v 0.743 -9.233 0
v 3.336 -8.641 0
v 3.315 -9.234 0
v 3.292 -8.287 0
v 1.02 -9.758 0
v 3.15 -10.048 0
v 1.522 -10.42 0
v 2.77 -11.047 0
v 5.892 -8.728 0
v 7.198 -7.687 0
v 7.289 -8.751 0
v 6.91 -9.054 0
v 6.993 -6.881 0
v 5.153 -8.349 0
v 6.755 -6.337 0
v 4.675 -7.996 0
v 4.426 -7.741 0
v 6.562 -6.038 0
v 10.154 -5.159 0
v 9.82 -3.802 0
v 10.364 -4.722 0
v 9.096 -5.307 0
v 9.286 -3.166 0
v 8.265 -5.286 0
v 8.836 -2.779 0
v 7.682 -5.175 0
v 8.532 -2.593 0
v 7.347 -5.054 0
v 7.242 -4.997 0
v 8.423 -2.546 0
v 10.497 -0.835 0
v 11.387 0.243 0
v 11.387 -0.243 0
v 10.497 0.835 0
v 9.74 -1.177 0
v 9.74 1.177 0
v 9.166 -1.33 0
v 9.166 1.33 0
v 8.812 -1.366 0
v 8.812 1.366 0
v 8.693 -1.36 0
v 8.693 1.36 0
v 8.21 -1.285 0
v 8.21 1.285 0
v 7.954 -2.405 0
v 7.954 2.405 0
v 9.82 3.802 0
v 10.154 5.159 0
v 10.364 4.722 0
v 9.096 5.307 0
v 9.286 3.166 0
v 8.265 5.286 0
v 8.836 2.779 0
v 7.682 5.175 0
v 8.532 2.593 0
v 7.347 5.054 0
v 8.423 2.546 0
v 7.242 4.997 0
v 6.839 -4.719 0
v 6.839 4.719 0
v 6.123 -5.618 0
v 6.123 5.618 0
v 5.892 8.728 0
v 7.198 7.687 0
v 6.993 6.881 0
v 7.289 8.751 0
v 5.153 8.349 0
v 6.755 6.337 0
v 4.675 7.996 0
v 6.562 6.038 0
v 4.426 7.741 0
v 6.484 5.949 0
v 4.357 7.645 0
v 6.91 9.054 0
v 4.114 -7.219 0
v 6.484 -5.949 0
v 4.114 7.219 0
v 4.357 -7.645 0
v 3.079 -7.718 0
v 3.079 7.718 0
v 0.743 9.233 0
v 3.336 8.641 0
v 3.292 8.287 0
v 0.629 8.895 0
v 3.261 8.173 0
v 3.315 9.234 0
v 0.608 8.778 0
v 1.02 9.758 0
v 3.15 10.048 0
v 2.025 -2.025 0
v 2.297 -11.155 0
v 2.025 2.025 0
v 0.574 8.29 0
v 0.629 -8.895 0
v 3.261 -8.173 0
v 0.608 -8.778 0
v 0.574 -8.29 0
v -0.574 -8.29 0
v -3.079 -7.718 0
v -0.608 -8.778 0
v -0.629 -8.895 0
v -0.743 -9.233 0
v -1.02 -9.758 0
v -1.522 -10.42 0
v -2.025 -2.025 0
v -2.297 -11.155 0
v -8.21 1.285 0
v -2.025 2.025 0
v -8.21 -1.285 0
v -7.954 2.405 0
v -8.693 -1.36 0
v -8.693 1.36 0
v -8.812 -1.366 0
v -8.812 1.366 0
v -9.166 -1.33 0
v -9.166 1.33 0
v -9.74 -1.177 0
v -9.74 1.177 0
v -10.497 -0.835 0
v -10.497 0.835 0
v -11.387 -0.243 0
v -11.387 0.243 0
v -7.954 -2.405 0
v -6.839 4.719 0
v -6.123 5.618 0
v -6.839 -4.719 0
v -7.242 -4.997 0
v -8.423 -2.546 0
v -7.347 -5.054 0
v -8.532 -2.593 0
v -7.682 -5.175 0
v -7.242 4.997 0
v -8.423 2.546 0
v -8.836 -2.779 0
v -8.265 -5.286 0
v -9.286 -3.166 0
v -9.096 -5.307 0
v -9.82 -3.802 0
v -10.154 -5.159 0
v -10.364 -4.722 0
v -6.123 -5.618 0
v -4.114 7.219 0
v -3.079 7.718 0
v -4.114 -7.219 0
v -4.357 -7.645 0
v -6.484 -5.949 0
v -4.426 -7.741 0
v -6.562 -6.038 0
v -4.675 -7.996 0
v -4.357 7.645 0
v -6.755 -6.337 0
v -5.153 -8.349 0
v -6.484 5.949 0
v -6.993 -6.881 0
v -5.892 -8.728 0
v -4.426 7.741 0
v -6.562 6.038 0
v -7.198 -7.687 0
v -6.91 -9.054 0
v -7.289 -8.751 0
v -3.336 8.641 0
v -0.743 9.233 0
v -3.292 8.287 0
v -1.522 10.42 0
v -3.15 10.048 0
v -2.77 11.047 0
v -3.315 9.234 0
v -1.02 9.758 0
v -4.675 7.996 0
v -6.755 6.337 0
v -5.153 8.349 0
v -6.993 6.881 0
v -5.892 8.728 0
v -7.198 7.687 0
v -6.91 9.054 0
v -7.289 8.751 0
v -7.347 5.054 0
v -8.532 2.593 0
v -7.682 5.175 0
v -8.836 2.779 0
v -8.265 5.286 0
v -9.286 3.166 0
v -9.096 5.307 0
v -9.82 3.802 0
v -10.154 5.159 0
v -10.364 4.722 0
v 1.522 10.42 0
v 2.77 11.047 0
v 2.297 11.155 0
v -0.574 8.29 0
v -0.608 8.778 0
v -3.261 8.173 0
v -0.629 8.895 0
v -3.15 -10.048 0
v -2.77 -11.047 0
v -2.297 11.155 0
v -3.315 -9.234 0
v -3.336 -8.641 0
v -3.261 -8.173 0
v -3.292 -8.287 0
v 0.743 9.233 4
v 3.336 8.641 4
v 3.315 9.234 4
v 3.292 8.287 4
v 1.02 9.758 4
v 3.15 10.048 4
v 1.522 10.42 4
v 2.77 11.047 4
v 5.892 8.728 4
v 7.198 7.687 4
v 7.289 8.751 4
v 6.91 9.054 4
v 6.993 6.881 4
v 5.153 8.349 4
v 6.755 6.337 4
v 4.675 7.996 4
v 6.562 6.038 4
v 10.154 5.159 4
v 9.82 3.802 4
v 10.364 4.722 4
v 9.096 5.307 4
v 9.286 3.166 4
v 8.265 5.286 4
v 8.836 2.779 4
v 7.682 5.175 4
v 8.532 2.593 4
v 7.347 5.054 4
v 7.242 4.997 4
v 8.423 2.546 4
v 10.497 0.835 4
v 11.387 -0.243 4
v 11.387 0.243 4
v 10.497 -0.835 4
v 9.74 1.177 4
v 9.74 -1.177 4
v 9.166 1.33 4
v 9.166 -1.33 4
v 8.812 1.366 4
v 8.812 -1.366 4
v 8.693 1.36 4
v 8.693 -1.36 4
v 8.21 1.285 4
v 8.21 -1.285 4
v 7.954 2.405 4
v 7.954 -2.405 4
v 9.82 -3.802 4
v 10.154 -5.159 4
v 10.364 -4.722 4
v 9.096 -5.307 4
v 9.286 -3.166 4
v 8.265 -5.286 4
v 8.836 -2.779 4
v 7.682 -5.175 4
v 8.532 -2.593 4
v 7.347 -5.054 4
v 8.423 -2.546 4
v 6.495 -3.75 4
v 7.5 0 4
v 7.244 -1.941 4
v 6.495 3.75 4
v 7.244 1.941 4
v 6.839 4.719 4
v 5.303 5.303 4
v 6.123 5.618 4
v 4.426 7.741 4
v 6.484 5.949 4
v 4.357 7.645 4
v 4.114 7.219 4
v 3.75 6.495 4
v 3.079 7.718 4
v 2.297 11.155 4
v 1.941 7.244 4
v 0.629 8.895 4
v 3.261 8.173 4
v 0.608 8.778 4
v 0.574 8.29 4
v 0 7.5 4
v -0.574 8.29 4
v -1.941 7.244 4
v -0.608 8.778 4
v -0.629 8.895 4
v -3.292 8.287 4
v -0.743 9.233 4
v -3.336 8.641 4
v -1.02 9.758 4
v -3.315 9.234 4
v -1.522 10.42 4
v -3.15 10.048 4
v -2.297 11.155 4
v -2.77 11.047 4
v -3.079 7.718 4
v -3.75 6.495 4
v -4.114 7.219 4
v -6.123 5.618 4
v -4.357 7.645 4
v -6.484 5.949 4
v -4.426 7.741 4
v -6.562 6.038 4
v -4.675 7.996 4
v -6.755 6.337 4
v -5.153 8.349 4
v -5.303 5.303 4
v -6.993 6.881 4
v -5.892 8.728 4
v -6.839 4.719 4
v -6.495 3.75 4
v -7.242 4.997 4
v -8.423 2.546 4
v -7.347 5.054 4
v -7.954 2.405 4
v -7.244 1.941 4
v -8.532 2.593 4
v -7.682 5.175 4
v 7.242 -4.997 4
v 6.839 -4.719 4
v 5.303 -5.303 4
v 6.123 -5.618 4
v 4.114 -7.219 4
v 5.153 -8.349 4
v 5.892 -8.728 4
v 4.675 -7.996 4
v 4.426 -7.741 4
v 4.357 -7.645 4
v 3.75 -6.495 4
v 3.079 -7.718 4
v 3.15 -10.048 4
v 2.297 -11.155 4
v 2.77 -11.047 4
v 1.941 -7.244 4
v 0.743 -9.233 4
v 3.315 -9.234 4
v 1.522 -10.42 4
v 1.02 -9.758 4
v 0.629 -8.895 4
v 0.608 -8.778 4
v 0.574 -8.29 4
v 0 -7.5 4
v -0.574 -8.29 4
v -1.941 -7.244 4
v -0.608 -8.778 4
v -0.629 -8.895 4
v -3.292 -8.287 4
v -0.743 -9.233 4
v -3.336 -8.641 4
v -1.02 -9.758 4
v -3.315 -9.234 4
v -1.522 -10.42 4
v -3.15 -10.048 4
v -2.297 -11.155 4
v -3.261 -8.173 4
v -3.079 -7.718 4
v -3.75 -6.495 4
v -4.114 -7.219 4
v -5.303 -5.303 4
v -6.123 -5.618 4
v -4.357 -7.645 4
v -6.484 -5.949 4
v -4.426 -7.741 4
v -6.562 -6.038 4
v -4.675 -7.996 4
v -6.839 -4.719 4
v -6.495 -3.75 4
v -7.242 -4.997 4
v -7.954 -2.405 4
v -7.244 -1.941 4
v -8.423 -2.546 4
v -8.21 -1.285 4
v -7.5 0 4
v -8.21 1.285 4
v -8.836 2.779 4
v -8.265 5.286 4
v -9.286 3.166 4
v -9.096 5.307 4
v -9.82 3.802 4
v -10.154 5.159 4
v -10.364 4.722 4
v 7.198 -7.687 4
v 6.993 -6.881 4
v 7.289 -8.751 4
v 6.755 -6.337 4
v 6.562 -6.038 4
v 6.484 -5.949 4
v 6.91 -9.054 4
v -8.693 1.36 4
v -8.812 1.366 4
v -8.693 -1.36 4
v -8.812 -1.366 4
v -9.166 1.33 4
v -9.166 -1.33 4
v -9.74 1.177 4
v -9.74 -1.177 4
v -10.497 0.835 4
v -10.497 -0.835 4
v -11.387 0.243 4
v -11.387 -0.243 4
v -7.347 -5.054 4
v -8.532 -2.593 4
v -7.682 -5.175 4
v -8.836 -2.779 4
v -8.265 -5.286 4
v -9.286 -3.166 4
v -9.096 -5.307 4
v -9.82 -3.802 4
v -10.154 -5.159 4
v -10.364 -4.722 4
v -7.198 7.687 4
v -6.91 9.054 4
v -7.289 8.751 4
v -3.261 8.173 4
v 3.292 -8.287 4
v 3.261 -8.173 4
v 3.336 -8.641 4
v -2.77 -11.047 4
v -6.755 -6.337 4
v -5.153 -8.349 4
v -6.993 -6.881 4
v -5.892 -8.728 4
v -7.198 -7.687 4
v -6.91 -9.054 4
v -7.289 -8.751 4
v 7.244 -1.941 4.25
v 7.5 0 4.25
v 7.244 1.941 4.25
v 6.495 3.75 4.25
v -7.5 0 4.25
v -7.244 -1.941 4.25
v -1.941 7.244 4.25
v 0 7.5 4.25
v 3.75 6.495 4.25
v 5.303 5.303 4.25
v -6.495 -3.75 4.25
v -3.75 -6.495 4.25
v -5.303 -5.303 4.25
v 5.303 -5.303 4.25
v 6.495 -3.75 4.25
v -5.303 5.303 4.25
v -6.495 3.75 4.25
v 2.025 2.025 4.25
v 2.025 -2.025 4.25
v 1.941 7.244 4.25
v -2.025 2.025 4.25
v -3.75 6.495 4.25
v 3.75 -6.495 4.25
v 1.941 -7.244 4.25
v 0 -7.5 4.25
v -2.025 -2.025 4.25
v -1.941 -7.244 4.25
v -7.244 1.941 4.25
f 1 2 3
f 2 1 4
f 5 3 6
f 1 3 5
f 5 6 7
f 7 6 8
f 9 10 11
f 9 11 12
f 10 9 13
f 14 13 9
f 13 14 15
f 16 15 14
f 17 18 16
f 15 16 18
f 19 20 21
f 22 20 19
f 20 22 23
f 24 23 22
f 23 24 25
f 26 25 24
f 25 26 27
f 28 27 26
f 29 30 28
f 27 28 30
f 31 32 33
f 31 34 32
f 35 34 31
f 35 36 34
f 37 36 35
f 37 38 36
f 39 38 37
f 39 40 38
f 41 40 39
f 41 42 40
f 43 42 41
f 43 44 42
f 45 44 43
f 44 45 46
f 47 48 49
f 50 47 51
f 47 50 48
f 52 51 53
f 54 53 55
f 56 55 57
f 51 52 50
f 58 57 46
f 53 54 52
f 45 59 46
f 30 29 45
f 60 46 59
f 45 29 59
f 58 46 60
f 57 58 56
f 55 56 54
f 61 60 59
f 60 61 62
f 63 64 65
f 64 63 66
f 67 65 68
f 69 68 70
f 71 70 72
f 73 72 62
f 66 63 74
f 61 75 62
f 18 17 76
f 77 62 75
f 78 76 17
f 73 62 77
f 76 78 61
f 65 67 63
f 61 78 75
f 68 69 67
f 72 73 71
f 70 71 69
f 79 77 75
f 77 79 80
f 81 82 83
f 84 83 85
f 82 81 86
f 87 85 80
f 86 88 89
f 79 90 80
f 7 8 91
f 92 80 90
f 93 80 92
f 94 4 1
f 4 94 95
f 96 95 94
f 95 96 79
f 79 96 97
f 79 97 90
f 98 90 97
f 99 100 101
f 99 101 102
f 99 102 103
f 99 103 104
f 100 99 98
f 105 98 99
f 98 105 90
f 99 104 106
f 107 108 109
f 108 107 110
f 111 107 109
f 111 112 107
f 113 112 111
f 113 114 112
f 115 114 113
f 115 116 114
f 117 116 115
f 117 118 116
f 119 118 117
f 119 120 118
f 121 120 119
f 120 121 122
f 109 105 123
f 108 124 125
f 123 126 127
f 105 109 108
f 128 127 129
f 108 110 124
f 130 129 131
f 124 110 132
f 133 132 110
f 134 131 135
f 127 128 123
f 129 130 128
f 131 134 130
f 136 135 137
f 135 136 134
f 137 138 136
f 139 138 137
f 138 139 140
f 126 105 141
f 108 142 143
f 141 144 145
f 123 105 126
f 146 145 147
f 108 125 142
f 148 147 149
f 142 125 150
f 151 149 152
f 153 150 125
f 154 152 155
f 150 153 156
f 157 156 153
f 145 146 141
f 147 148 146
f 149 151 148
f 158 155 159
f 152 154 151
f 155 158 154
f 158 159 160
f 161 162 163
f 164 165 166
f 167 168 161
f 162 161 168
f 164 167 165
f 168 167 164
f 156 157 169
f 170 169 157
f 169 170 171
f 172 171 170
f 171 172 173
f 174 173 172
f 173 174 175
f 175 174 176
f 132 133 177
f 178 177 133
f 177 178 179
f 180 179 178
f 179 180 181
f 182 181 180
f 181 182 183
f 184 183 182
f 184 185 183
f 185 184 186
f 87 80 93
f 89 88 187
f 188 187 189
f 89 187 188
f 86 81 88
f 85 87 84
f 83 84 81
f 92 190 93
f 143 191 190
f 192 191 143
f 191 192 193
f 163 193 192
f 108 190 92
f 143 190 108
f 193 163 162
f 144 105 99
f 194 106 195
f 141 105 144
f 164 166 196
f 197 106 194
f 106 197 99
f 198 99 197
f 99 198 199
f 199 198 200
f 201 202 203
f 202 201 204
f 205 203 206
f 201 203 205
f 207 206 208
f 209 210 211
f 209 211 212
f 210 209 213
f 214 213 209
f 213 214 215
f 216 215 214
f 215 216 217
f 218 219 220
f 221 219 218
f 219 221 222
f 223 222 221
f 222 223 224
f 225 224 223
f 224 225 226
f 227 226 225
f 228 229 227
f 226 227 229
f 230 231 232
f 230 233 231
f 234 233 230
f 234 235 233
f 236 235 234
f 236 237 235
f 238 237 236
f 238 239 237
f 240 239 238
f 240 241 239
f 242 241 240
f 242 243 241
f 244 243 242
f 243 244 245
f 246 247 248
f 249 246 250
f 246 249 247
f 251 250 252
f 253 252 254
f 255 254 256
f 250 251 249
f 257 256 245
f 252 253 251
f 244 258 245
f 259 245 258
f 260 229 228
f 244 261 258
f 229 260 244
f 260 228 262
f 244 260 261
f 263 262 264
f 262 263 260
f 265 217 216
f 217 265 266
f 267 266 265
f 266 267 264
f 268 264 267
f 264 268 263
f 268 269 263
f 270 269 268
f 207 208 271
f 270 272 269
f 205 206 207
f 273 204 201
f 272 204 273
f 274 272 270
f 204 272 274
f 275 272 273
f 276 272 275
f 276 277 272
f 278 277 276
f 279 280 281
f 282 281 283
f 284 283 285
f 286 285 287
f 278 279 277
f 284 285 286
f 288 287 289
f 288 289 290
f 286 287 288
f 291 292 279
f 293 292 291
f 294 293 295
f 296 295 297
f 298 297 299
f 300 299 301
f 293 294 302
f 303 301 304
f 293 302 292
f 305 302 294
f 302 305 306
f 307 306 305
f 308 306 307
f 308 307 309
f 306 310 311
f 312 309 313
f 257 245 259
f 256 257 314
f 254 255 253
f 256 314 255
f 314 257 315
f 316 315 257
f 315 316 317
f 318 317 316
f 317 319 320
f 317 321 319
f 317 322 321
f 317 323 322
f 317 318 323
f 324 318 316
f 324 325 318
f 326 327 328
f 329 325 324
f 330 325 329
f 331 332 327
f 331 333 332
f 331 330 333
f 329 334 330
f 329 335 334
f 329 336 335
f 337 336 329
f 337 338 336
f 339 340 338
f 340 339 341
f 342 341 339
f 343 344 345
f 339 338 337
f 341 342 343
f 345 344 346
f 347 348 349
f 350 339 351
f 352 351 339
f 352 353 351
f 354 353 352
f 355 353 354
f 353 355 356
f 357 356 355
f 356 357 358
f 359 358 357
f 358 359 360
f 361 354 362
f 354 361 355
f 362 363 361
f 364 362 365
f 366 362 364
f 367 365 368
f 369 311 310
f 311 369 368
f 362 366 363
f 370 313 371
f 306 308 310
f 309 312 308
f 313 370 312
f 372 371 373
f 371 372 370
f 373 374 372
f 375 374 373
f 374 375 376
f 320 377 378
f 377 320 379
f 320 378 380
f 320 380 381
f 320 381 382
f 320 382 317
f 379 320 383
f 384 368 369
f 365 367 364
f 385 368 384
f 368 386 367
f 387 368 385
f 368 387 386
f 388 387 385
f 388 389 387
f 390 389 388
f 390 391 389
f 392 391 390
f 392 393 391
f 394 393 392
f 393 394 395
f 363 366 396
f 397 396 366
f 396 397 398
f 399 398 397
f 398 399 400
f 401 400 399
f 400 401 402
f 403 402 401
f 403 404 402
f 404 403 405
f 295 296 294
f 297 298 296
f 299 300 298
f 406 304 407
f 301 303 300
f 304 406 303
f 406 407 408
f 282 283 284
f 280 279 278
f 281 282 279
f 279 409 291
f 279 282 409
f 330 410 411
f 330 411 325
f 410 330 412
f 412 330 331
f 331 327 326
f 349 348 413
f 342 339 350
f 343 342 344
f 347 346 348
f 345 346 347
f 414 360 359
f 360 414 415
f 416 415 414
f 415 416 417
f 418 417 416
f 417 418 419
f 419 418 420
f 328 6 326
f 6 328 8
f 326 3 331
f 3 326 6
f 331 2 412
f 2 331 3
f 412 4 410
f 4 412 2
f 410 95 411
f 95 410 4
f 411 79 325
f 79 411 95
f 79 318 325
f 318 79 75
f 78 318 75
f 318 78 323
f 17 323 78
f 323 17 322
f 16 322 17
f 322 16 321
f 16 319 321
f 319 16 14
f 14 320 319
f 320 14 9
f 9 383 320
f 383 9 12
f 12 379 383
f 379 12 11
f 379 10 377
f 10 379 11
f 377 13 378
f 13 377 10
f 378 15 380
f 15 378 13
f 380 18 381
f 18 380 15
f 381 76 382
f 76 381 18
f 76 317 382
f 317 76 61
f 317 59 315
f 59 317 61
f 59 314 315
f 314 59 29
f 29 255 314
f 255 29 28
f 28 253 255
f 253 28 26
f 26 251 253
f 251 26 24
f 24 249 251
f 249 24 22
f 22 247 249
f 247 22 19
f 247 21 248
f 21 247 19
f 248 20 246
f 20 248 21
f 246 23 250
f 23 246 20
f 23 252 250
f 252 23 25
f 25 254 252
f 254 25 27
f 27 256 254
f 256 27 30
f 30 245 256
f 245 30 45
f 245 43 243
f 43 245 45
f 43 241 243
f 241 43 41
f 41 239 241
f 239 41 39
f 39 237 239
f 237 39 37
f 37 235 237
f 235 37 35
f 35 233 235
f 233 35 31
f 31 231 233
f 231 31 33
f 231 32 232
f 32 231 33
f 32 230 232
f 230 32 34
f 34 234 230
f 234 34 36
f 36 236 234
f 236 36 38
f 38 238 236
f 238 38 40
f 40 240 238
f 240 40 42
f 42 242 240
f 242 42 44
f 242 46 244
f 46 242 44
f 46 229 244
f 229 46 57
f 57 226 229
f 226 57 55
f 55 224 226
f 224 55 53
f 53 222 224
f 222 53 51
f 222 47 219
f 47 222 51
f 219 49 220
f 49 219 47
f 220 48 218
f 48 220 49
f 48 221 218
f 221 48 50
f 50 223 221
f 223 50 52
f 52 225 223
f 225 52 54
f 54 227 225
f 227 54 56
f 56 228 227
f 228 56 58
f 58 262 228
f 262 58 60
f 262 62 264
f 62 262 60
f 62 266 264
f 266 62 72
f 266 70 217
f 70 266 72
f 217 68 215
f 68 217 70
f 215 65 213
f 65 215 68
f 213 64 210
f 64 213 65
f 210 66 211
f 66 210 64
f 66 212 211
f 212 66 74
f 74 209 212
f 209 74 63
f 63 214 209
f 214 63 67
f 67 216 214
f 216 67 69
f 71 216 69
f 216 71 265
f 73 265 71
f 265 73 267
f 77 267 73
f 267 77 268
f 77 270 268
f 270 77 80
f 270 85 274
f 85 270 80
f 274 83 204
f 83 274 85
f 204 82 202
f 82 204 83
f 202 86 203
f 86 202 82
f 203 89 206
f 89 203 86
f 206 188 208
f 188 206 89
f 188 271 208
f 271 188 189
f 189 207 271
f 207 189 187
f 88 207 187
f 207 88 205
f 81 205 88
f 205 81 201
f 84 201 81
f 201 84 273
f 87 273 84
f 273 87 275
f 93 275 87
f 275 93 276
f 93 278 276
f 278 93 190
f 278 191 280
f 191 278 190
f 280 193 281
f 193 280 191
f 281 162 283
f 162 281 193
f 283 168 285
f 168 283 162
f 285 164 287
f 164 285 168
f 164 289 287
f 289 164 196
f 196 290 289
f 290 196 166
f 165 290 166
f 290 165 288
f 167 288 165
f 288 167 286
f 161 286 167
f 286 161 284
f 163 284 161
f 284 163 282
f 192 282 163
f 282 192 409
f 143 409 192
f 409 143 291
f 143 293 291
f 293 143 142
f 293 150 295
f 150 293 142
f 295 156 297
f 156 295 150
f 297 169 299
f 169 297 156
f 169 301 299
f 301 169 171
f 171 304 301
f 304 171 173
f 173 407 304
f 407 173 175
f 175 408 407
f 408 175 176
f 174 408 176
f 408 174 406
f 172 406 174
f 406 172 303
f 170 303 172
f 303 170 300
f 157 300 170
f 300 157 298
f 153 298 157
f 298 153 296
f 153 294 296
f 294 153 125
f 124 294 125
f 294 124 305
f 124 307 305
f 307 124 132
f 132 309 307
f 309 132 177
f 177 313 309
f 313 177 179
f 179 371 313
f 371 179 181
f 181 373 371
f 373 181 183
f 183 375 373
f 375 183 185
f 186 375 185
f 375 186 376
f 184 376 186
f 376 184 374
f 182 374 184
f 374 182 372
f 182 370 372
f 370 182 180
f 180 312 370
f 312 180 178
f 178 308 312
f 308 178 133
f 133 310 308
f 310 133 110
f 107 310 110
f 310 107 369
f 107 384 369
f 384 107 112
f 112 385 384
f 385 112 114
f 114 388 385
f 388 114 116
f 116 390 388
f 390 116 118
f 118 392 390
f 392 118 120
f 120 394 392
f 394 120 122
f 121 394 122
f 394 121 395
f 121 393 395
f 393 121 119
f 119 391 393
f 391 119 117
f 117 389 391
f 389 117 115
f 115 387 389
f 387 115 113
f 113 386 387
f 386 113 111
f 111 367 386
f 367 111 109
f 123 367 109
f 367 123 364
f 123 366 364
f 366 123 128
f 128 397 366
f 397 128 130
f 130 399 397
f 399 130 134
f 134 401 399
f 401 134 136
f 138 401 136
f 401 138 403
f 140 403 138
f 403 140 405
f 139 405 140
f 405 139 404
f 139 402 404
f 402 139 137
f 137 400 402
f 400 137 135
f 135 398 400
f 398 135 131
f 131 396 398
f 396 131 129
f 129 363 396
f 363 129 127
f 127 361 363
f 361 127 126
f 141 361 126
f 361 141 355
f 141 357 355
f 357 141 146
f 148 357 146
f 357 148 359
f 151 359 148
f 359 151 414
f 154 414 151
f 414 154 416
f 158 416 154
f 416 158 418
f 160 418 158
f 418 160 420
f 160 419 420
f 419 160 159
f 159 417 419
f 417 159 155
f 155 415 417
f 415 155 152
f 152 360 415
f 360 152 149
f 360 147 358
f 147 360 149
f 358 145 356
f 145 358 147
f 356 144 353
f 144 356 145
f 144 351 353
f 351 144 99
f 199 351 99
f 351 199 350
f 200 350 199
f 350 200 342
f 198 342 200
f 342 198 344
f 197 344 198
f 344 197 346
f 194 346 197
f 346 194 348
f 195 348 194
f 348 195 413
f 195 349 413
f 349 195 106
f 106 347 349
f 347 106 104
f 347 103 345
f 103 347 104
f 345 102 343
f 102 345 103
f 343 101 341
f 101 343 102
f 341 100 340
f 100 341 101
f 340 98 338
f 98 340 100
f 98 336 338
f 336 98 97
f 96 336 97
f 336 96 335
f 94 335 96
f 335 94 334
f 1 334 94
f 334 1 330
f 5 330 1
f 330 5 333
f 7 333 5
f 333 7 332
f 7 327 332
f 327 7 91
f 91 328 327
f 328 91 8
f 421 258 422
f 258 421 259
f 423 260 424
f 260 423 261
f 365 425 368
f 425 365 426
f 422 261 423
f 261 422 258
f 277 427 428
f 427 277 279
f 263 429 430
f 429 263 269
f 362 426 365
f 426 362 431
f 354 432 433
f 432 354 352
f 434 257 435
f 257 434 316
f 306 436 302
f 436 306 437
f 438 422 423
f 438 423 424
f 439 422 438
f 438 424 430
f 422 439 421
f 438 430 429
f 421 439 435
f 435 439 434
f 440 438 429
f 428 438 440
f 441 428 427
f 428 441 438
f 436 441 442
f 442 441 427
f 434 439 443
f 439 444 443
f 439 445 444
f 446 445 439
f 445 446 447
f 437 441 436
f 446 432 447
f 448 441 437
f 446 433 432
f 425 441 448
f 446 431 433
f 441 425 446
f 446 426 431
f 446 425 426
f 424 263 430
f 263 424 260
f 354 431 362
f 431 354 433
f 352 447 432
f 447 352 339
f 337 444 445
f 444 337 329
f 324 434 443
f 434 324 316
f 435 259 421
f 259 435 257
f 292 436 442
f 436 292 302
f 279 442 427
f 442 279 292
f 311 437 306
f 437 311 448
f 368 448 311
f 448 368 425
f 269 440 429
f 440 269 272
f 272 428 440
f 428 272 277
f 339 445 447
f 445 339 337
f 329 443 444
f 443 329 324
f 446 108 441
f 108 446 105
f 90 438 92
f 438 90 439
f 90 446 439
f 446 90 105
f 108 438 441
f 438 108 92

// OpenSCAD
//This is an openscad part used in a modified version of perseverance.
//This version is optimized to use a lasercut base using 3mm thick material

//header
include <MCAD/involute_gears.scad>

//render
idler_gear_small();

//===========Geometry============
clearance = 0.05; //mm - amount to oversize holes so that parts will assemble

teeth = 14; //mm - diameter of the cap of the axle pin, overall
d_pitch = 0.702412; // pitch to specify teeth
t_gear = 4; //mm - thickness of the gear
t_hub = 4.25; //mm - thickness of the hub - raised slightly to stand gear off of edge
l_pen = 4+clearance; //mm - length of the side of the square pin to cut out
t_pen = 2*t_hub; //mm - the thickness of the square pin to cut out (oversized)

fudge = 0.01; //mm - use this value to make sure surfaces aren't coincident
//===========Modules=============
//Imported module gear:
//Below is a list of arguments and brief discriptions.
//Default values listed in ().
//	number_of_teeth (15) - can specify the number of teeth on the gear
//	circular_pitch (false), diametral_pitch(false) - specify one or the other numerically
//	pressure_angle (28) - can specify a different pressure angle
//	clearance (0.2) - clearance for gear design
//	gear_thickness (5) - specify thickness of gear body
//	rim_thickness (8) - specify thickness of rim and teeth,
//	rim_width(5) - ??
//	hub_thickness(10) - specify thickness of the central hub,
//	hub_diameter (15) - specify diameter of central hub
//	bore_diameter (5) - specify diameter of through-hole
//	circles (0) - can subtract material by removing specified number of holes from body
//	backlash (0) - can add specified amout of backlash to gears
//	twist (0),
//	involute_facets (0),
//	flat (false)
module idler_gear_small(){
    difference(){
        gear (number_of_teeth=teeth,
              diametral_pitch=d_pitch,
              gear_thickness = t_gear,
              rim_thickness = t_gear,
              hub_thickness = t_hub,
              bore_diameter=0,
              clearance = 0.2);
        //specified with zero bore diameter so we can cut a square notch
        
        cube([l_pen,l_pen,3*t_pen],center=true);
    }
}
